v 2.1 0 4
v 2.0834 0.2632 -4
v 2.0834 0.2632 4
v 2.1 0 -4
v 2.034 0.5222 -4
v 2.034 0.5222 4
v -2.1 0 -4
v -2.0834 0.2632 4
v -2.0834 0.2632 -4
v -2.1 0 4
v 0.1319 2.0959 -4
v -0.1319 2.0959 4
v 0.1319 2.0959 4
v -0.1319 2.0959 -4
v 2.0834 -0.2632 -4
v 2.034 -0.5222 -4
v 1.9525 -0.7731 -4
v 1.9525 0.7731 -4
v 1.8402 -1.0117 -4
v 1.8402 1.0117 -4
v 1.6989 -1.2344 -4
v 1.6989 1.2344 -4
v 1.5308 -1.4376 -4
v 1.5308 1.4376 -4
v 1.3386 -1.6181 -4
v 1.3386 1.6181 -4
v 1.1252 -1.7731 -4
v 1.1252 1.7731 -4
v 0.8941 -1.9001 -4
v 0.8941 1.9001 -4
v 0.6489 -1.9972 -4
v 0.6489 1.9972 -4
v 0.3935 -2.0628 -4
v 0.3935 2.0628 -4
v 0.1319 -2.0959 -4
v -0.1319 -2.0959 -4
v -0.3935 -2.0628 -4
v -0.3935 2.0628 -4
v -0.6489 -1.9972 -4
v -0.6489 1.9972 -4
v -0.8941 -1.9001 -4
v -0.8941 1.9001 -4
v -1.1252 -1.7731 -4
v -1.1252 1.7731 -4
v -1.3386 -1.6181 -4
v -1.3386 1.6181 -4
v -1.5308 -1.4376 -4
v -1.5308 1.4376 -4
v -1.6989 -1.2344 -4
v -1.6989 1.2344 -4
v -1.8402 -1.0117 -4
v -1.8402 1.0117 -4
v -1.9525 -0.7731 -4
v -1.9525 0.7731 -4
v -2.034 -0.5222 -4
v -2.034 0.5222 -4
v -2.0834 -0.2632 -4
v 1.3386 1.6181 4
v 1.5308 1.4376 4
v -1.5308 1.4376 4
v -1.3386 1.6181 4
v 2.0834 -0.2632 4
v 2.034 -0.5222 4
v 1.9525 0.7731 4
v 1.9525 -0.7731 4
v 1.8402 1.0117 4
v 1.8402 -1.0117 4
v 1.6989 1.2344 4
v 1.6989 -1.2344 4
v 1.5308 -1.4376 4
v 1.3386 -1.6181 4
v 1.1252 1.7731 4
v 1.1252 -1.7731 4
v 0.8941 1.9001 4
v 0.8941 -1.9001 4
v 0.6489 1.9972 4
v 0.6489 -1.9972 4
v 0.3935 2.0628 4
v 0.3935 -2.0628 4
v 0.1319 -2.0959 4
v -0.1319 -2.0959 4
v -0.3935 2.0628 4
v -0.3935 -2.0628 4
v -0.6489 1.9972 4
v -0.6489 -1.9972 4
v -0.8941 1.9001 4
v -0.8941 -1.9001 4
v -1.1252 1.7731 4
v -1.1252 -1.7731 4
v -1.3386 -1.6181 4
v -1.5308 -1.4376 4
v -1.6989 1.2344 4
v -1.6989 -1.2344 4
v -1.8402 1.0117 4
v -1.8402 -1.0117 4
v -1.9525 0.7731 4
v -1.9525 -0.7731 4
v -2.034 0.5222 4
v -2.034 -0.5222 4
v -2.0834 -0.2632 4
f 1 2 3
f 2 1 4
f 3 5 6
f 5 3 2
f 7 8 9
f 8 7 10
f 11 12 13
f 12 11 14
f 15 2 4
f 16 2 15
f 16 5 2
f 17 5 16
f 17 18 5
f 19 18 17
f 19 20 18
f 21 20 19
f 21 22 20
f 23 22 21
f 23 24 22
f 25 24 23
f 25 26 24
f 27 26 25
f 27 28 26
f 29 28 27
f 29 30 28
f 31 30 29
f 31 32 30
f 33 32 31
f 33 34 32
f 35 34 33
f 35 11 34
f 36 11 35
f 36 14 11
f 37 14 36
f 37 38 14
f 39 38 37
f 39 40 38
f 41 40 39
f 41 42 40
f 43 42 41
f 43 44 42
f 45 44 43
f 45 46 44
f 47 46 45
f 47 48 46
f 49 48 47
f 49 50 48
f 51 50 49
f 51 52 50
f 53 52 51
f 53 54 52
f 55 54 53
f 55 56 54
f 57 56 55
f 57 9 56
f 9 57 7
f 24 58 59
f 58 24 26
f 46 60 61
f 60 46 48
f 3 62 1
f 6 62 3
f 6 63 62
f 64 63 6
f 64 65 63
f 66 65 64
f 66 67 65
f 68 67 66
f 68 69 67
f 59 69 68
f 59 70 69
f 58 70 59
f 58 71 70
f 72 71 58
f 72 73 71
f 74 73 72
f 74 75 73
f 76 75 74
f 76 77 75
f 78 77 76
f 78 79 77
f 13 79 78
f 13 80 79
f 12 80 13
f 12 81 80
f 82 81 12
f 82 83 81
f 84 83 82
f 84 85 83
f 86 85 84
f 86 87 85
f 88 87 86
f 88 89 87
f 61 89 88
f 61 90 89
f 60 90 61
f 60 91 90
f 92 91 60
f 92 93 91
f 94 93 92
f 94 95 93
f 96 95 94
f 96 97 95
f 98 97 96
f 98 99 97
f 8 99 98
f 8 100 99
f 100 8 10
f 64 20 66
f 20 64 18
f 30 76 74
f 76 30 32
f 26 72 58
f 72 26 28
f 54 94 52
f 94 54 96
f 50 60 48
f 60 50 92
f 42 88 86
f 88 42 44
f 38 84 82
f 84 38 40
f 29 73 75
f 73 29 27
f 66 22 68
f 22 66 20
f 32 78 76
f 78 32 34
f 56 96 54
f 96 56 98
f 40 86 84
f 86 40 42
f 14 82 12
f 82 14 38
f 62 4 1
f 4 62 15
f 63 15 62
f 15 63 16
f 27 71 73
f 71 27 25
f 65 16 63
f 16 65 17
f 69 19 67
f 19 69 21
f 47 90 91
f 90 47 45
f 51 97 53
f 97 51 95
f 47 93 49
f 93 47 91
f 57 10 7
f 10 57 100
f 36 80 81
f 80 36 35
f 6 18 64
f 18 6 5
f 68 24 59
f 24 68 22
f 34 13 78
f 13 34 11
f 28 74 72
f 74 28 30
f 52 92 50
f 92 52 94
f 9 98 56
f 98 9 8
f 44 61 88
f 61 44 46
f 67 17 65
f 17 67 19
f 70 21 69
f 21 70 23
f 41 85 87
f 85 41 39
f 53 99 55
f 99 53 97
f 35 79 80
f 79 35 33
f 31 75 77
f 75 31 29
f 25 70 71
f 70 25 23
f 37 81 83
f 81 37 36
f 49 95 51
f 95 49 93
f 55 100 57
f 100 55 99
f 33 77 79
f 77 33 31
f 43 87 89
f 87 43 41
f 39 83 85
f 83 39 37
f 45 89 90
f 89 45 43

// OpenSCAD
$fn = 50;


difference() {
	union() {
		translate(v = [0, 0, -4.0000000000]) {
			cylinder(h = 8, r = 2.1000000000);
		}
	}
	union() {
		translate(v = [0, 0, -100.0000000000]) {
			cylinder(h = 200, r = 0);
		}
	}
}
